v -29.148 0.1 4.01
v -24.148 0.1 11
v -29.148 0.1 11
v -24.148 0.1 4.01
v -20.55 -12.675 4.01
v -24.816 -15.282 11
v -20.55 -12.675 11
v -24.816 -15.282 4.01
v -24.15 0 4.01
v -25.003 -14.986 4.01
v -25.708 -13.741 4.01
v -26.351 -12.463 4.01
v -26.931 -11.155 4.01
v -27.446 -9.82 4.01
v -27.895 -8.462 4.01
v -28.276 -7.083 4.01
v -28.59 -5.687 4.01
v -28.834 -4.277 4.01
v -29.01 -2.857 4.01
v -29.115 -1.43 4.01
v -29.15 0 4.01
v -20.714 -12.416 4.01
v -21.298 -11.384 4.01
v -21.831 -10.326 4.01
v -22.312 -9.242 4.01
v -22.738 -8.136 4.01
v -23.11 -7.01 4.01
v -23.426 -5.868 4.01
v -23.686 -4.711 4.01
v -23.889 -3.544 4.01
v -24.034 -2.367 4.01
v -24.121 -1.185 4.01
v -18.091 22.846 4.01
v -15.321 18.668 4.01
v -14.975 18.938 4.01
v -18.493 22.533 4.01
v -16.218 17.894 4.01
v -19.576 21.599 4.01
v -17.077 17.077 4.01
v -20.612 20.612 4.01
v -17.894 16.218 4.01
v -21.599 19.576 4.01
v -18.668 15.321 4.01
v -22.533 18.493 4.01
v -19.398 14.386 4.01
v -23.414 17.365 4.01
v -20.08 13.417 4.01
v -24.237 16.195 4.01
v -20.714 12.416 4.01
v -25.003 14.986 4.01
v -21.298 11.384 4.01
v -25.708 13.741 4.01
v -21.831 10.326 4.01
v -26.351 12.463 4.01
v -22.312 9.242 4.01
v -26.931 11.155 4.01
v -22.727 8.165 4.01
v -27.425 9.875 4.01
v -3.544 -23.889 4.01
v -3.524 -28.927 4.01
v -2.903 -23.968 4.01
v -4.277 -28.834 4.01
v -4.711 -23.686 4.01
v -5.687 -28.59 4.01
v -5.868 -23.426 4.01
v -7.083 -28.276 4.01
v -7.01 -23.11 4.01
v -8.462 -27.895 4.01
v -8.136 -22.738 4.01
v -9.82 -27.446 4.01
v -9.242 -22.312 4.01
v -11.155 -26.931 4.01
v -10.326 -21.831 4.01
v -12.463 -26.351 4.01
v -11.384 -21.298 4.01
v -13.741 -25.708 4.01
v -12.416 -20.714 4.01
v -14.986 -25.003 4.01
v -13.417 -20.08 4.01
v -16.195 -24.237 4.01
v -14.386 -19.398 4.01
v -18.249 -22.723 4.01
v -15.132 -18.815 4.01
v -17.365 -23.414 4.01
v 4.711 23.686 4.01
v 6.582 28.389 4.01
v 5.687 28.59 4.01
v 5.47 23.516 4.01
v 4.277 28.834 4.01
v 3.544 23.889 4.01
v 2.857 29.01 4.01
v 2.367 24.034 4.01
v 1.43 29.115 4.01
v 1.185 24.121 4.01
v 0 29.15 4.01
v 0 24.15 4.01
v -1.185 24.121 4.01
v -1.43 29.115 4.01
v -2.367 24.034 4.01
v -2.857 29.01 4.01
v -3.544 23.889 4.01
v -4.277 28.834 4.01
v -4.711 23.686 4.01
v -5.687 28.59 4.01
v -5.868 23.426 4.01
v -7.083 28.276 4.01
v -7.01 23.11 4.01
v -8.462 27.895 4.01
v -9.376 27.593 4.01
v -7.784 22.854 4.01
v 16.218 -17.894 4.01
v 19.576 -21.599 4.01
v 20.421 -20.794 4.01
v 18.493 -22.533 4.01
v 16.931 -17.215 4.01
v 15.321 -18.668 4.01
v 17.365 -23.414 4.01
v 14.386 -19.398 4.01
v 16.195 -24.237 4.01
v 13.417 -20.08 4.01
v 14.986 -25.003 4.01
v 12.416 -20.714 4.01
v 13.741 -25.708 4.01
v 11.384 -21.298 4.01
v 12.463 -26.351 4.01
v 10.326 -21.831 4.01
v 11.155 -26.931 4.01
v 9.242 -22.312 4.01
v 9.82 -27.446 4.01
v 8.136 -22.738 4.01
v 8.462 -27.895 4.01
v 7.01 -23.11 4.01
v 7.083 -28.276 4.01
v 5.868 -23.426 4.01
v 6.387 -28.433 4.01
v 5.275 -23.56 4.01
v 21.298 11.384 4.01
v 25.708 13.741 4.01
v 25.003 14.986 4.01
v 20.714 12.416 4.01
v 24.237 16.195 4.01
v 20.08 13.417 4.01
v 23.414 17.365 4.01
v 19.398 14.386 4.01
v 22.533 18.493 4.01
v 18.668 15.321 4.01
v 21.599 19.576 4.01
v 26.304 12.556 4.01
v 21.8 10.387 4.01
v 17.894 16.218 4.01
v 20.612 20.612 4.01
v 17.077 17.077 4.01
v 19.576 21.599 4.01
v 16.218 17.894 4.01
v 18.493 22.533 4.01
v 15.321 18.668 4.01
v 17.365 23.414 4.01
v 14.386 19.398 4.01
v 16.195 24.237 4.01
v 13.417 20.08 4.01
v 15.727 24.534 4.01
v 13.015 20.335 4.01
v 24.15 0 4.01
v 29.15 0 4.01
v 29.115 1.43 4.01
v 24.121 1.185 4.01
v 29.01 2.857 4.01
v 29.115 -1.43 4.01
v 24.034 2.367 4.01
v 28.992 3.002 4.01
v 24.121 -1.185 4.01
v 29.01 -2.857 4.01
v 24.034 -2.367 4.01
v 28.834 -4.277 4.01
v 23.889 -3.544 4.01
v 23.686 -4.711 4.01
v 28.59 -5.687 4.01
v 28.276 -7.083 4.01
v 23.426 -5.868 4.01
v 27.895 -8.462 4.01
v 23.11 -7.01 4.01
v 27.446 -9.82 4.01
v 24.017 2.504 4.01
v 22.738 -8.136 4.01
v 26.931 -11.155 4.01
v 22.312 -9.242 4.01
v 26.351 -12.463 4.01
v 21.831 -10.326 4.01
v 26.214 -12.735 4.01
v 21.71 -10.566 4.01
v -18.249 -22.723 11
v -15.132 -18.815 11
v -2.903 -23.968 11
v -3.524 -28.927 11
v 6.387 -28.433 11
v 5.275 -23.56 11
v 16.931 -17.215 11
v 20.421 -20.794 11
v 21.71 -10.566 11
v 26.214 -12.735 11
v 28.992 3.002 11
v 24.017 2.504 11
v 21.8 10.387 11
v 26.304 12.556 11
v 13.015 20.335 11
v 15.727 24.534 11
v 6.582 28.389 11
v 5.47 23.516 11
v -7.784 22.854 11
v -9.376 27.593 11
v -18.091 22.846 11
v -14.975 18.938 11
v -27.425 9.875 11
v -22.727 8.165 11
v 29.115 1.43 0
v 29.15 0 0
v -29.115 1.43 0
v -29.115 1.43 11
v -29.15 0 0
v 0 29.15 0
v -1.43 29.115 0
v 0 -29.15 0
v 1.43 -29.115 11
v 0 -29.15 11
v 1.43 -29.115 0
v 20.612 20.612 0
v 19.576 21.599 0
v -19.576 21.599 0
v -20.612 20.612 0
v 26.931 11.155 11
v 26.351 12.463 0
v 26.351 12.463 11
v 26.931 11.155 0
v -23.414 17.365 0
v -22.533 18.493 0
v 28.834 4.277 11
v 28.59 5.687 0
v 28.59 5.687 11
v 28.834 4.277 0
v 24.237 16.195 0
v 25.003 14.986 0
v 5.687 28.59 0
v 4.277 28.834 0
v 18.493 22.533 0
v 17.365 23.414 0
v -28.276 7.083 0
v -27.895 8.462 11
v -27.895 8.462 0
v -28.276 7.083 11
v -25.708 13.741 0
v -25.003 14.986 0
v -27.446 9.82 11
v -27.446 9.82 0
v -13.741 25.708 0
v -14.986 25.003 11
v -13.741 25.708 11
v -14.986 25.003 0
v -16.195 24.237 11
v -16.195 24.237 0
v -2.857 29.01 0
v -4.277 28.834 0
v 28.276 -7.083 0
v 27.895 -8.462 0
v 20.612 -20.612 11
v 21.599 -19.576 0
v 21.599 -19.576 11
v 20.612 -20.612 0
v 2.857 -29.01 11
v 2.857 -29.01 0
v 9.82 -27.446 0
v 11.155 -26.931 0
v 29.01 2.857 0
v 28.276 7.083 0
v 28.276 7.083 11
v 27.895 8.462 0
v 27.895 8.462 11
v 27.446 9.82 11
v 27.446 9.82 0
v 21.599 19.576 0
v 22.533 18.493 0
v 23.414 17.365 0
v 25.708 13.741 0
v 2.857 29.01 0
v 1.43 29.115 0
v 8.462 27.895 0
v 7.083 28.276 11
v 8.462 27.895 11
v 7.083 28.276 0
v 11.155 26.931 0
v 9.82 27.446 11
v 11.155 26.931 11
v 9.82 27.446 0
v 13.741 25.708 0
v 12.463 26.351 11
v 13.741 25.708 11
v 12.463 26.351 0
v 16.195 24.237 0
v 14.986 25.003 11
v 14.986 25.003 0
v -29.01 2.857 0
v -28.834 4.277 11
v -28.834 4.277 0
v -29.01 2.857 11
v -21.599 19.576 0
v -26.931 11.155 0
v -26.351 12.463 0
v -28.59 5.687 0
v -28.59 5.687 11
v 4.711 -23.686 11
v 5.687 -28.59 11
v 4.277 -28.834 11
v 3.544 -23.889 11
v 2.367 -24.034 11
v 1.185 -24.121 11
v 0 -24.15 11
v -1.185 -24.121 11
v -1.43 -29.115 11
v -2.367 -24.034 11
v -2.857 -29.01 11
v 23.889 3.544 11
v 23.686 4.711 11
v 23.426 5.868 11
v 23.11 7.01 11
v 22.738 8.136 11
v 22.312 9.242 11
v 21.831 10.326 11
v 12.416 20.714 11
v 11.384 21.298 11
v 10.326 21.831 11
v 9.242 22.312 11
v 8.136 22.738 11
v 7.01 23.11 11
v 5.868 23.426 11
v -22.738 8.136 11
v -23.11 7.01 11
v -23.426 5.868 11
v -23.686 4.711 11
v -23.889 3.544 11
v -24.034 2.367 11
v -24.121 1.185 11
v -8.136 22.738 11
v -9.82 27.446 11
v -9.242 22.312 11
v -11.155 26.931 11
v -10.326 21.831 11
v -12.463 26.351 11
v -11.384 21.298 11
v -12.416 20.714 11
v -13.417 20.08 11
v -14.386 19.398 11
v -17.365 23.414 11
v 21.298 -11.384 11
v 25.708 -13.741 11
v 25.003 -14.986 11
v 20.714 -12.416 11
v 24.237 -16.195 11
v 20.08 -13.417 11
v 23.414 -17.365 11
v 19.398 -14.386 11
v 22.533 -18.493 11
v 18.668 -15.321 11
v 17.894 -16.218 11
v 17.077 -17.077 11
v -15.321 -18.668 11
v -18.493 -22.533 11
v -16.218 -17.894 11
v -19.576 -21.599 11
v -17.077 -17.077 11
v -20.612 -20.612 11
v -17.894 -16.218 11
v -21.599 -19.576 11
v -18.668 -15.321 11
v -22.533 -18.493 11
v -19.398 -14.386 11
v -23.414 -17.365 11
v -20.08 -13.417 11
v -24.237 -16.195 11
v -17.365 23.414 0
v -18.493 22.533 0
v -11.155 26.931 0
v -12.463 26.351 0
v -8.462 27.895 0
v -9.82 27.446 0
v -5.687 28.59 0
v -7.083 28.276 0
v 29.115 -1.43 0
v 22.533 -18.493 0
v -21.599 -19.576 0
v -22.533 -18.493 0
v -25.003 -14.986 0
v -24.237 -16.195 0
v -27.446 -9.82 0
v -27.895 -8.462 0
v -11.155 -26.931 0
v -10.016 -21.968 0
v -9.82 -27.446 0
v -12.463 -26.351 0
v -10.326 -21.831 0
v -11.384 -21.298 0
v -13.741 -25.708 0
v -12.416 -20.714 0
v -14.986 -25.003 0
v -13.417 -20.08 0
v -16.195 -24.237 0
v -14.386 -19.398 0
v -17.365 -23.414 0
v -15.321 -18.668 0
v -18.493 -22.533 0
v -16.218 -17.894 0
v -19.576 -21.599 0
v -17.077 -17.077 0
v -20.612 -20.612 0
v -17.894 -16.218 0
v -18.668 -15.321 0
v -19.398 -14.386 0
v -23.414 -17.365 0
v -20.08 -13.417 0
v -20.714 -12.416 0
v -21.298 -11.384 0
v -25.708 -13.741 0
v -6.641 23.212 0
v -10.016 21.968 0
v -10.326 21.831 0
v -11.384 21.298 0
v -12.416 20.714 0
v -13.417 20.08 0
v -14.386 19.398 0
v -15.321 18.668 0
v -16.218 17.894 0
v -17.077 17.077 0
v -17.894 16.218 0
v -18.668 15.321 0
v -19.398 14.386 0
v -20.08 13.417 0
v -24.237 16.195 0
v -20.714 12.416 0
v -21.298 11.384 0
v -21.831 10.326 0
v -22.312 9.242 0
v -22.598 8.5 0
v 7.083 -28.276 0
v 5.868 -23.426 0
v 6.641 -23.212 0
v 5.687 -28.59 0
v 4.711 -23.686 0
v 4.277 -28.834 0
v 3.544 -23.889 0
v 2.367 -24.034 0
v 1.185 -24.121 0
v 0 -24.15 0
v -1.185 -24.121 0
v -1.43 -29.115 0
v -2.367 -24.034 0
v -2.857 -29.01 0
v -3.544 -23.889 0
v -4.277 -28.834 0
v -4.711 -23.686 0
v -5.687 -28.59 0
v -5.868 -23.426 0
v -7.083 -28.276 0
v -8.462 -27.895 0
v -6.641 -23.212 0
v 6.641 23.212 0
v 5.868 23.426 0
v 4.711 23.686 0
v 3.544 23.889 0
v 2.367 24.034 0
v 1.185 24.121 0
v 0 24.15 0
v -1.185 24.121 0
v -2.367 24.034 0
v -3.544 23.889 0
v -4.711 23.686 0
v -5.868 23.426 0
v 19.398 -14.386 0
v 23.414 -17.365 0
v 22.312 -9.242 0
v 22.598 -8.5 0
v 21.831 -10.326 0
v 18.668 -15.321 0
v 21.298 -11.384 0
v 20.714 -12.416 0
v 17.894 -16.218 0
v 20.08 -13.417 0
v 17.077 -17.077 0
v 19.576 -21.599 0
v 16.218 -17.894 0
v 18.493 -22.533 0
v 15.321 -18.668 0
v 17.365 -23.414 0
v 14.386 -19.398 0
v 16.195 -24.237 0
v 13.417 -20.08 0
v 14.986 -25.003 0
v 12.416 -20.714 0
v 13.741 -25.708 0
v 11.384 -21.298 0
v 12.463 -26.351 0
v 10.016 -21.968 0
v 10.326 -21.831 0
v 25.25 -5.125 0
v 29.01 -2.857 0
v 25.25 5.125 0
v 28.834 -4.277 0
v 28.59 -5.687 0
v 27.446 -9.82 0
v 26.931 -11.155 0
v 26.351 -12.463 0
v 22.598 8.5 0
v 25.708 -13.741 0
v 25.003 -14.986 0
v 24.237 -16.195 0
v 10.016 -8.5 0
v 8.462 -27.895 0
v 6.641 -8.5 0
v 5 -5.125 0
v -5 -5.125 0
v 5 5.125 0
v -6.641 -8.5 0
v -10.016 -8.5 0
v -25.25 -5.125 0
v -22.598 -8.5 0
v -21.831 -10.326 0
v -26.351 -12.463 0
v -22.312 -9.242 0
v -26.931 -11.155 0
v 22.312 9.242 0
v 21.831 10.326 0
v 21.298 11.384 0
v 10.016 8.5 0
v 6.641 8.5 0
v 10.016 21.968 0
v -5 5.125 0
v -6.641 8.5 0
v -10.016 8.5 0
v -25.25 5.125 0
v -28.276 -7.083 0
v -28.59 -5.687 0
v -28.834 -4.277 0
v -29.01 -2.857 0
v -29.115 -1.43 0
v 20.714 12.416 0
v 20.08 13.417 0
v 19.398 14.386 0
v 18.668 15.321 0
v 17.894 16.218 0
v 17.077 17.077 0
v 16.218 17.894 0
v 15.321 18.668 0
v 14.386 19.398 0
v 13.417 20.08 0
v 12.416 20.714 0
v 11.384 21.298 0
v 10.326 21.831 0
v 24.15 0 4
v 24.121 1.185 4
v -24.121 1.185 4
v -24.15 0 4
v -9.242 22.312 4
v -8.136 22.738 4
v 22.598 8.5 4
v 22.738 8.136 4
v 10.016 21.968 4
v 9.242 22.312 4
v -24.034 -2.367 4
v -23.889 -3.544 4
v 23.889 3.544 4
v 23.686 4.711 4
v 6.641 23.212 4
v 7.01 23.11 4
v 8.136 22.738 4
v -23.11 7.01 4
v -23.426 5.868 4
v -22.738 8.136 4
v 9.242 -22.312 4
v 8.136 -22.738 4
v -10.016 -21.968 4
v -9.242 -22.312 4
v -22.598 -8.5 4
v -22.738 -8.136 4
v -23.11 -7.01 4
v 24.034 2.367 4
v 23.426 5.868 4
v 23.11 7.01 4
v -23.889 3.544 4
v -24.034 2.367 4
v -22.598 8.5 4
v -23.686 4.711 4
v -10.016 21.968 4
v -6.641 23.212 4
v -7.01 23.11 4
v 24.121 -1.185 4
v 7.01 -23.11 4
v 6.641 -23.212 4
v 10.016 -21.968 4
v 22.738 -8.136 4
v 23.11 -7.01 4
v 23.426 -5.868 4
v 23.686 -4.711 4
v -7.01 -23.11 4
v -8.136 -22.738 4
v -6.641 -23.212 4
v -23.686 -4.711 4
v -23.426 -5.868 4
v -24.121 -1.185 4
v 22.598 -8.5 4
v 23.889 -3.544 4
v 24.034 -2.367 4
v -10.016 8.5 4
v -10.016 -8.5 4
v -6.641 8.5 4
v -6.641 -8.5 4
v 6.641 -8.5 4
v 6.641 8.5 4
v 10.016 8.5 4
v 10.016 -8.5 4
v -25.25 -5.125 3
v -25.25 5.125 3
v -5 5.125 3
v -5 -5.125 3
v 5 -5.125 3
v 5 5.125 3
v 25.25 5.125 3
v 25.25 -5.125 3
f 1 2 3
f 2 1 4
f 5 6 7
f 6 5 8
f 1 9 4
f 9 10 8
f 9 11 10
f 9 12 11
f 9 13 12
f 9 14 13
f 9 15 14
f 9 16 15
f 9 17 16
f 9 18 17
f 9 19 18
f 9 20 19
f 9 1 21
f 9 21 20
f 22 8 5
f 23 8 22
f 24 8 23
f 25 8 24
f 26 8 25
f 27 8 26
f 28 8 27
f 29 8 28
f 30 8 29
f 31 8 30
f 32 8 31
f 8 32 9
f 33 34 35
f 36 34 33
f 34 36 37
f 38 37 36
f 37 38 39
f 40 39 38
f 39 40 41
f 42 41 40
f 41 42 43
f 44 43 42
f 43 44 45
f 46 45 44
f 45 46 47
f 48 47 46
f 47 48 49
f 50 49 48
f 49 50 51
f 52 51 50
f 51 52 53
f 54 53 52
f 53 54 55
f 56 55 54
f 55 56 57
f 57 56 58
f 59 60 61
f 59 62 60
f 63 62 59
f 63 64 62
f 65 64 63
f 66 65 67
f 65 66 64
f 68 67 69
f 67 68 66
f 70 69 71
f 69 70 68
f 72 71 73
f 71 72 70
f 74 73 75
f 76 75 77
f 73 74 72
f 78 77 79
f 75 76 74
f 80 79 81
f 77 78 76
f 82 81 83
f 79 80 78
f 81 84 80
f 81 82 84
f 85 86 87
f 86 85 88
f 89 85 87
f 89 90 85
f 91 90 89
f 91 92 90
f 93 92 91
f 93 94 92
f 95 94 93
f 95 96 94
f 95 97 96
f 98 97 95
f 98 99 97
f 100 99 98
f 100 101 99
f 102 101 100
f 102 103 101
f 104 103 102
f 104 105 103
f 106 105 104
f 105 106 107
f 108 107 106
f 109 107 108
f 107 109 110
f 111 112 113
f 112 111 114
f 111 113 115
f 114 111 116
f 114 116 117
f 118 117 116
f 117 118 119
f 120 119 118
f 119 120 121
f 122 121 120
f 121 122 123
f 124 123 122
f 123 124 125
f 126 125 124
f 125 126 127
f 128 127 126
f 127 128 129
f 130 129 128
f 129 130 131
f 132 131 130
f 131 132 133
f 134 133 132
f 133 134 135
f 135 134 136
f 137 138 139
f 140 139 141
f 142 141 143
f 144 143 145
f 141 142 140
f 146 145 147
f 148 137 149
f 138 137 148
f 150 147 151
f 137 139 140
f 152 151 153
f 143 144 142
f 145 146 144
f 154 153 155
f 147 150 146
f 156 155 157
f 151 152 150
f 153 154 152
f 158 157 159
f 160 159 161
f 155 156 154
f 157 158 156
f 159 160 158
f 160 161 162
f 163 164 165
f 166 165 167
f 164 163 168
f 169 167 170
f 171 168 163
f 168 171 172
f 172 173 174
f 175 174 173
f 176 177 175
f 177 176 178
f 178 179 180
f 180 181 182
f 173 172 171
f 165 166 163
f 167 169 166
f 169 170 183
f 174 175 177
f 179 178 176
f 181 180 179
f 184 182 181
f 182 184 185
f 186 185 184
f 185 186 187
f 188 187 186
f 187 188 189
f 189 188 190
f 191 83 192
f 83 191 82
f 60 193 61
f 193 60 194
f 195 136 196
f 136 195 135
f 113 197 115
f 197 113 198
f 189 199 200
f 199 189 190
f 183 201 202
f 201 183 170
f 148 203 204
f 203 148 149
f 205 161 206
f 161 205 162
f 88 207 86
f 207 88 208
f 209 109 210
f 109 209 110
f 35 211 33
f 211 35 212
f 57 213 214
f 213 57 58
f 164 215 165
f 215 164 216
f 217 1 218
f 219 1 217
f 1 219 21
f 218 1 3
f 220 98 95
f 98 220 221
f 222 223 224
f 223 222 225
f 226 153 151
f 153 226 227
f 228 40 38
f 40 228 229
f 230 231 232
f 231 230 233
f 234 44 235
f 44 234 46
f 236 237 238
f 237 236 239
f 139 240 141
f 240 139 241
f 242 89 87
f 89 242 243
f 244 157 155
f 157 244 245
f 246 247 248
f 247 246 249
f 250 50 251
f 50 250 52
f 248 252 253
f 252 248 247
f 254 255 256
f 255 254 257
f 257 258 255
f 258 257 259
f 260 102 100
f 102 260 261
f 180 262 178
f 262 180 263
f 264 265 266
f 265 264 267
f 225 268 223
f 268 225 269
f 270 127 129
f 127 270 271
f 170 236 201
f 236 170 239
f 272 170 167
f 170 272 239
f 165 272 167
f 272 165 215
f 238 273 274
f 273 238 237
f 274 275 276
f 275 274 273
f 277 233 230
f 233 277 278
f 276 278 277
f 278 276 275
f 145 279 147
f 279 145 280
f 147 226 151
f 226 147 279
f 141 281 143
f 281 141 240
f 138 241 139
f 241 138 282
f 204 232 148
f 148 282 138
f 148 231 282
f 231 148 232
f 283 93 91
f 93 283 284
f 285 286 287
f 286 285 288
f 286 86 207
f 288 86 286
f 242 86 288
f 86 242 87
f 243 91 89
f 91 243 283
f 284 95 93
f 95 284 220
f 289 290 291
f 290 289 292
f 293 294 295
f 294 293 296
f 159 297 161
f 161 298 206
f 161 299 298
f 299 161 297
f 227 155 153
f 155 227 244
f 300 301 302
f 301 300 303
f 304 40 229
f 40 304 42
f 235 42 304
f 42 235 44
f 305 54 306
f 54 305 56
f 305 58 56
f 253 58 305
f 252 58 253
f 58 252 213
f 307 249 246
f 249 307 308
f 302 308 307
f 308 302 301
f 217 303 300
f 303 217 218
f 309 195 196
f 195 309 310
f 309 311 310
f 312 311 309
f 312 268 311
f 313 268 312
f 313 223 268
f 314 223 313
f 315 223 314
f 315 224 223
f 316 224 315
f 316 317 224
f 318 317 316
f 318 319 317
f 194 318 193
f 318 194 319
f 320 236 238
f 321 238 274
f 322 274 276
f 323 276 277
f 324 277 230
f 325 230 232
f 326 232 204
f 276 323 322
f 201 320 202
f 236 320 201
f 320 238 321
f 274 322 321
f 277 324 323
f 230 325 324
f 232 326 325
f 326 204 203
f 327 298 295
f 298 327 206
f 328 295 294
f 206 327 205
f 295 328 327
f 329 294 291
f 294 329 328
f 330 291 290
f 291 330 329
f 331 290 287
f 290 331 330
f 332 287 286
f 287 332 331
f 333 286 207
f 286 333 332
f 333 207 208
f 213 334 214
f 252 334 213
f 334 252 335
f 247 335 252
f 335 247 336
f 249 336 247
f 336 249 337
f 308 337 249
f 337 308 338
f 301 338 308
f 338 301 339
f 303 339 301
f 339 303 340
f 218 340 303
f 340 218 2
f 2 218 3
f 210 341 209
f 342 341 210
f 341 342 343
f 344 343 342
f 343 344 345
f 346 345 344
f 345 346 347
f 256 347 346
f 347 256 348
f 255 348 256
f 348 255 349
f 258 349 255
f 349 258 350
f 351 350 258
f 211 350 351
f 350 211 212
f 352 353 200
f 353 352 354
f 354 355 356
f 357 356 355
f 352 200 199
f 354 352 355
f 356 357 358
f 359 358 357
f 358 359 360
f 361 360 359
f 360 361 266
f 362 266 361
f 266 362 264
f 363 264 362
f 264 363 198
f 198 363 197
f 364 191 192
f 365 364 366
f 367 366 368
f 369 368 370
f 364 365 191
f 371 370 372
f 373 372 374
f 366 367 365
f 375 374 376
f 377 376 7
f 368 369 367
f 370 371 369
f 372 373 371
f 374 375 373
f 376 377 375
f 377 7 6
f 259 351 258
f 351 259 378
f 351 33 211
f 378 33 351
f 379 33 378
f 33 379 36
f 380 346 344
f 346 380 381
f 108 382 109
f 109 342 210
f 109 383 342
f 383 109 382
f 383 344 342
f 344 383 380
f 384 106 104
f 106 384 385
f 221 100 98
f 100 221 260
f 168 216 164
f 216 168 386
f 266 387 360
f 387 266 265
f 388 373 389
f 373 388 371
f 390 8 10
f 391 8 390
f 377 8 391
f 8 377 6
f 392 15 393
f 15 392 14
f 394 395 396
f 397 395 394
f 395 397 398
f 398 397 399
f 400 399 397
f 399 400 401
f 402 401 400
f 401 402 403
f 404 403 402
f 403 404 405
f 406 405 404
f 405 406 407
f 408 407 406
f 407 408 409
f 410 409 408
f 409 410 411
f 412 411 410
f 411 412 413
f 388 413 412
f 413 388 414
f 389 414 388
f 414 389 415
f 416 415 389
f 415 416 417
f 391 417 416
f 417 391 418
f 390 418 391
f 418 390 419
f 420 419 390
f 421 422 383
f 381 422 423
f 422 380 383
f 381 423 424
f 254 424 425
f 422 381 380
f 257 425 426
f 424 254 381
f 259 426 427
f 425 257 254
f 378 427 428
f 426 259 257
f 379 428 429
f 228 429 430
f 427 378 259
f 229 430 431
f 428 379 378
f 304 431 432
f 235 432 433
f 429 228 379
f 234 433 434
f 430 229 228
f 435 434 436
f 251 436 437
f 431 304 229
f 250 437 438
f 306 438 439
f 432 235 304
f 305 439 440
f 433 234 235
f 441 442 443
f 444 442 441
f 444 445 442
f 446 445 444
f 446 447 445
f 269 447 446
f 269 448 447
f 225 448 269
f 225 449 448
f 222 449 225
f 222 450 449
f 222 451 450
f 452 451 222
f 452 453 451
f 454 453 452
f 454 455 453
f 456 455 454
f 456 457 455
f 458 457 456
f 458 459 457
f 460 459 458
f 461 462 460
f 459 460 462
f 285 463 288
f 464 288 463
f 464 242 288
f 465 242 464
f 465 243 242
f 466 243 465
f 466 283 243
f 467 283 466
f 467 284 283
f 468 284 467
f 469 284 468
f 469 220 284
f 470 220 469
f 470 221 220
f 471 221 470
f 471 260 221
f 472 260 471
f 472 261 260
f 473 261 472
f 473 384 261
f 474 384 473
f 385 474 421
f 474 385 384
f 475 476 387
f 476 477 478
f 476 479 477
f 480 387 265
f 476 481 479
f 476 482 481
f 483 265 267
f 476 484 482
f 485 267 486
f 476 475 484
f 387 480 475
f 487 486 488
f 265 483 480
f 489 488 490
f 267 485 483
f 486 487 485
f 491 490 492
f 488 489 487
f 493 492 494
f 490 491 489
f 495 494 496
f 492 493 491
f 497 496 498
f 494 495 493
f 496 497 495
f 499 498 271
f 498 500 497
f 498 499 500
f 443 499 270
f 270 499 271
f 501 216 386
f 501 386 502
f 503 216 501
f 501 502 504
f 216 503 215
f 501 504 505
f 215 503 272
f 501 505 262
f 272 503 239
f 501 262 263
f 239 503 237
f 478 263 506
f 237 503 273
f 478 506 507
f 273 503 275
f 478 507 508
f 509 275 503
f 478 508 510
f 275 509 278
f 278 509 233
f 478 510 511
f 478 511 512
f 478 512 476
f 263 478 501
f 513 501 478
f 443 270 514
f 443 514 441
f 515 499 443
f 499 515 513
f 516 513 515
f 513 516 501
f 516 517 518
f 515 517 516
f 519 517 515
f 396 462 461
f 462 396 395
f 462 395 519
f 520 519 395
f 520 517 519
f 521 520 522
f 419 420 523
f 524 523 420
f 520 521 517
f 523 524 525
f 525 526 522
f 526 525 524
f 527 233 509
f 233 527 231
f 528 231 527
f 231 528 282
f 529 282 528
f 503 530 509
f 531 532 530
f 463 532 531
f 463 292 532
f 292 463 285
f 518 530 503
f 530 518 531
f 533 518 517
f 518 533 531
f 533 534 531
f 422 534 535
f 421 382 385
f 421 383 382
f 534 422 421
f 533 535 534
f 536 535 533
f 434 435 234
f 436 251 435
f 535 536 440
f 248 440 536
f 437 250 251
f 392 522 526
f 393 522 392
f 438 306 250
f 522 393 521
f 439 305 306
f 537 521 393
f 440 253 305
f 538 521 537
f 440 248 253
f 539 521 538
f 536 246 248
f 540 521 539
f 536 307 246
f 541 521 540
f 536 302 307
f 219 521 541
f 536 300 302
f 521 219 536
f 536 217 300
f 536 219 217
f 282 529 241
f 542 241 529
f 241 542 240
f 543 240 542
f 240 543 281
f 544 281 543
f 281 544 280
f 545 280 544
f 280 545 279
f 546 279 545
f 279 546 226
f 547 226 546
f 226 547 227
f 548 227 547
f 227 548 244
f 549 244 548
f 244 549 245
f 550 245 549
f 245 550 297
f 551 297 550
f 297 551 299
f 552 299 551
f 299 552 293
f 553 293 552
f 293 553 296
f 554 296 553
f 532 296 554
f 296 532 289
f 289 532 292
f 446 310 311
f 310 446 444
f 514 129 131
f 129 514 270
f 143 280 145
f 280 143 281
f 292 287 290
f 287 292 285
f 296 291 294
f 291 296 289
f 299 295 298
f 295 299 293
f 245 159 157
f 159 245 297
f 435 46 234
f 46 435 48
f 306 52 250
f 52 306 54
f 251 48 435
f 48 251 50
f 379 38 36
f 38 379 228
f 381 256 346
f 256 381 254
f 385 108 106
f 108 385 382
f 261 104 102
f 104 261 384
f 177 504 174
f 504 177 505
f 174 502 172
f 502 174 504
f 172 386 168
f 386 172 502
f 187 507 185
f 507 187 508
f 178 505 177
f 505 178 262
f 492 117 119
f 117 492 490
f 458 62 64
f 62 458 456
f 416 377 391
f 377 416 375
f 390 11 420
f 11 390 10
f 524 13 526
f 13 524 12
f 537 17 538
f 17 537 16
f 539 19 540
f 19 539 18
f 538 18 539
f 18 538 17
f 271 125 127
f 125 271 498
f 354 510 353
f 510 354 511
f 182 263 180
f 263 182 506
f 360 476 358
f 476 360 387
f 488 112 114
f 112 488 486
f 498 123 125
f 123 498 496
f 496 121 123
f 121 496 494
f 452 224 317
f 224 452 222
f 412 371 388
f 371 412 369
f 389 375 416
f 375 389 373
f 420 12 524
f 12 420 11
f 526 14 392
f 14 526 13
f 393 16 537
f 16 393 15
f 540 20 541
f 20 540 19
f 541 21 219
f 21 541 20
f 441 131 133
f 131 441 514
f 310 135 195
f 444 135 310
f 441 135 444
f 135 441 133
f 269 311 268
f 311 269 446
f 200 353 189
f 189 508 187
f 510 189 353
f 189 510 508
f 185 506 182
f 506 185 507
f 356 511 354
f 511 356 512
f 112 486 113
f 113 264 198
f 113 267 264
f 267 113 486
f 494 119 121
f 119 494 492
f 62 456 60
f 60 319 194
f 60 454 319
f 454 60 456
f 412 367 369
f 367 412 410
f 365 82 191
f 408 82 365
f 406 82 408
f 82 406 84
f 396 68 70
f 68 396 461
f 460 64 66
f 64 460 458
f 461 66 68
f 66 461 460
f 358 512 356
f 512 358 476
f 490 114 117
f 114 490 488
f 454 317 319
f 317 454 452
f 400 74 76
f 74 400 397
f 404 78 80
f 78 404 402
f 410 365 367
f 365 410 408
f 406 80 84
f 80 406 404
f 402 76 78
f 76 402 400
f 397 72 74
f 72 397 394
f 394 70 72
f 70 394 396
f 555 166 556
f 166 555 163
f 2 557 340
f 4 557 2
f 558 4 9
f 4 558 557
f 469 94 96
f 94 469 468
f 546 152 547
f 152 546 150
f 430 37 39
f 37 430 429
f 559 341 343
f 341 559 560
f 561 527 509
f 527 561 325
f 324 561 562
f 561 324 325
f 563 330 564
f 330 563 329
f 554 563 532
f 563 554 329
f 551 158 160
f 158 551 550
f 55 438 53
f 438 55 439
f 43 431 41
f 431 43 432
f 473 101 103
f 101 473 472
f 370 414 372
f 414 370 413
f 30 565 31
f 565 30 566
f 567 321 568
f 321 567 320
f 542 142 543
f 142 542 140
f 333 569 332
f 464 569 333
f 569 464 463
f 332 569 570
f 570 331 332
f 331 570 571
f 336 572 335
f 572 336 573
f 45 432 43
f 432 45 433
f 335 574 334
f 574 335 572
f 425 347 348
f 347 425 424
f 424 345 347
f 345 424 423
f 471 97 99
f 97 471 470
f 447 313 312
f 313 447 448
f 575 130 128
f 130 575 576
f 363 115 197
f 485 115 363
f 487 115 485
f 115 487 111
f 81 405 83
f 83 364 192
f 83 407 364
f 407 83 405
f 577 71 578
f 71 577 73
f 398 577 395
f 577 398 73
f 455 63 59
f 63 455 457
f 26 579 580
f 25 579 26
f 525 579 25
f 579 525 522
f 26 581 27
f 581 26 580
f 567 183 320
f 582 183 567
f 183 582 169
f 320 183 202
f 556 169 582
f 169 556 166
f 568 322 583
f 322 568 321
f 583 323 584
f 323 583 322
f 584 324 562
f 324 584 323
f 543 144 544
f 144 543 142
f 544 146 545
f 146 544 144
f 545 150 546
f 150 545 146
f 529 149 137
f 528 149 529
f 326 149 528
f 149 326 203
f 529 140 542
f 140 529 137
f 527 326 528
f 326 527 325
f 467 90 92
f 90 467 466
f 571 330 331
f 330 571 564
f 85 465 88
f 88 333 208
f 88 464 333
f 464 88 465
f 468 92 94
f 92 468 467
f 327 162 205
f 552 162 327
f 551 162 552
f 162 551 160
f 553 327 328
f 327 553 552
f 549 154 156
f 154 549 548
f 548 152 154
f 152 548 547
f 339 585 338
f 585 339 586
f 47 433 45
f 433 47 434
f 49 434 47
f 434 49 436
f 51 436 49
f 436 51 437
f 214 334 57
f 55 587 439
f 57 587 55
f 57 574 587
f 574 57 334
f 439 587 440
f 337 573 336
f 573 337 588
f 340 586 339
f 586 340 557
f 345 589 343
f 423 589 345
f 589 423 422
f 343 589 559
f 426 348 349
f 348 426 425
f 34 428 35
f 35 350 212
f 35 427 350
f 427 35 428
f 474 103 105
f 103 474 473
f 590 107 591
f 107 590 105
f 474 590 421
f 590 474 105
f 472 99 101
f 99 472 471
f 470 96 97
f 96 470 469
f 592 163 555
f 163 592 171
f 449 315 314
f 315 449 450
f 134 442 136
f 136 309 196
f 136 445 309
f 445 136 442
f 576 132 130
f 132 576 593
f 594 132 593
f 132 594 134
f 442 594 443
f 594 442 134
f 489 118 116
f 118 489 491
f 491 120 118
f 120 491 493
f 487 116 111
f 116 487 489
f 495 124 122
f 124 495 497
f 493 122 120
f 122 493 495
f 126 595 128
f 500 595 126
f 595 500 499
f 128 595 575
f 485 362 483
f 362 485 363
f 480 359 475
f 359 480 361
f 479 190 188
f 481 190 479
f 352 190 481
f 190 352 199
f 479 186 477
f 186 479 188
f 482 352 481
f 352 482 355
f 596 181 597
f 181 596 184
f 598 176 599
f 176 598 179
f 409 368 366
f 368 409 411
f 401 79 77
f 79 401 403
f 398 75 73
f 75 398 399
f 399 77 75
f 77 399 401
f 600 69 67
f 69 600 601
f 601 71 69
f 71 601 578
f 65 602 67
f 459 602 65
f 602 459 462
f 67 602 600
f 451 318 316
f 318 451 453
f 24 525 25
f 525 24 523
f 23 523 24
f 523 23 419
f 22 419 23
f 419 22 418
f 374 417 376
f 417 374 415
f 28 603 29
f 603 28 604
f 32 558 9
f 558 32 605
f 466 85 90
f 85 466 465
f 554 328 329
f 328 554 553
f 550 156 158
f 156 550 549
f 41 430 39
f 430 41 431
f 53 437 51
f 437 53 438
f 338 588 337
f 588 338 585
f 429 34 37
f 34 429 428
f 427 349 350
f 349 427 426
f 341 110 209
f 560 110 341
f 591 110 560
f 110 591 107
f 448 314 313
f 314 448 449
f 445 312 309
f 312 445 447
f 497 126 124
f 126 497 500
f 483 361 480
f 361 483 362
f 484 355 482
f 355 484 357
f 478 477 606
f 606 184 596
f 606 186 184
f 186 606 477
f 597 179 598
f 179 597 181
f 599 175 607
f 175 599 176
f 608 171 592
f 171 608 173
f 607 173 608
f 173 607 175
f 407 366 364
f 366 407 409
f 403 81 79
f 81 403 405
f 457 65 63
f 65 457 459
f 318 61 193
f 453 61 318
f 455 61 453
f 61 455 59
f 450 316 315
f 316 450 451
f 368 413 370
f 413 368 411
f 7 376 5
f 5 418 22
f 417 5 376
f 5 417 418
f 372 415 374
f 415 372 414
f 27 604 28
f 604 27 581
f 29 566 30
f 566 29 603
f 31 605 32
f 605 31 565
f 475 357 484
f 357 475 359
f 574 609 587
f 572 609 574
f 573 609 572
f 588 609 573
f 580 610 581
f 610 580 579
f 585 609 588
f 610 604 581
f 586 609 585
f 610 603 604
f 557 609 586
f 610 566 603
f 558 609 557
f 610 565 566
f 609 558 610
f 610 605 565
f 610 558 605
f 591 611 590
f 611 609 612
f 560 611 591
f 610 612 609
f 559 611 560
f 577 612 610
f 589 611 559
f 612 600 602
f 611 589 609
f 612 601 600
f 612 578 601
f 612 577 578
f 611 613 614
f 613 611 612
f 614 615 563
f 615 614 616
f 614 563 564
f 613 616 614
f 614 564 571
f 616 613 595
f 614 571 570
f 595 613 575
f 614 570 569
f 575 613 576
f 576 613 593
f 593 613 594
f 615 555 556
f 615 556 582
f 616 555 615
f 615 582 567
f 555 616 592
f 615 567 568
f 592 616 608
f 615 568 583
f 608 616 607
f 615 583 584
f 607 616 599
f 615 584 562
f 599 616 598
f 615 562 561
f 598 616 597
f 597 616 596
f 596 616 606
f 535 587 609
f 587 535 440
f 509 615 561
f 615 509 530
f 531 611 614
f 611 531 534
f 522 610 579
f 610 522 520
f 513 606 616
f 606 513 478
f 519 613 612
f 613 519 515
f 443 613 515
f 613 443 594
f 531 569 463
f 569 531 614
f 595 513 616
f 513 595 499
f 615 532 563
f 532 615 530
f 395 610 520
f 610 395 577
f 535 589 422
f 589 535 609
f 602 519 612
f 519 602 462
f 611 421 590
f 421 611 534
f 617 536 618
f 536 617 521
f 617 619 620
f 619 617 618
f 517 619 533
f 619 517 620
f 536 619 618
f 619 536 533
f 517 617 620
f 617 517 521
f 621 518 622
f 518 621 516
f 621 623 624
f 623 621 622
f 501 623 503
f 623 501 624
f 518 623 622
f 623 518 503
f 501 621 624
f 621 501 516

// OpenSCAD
$fn=128;

fw = 48.3;   // fan width

h  = 4;      // base height
r  = 5;      // edge width

pn = 7;      // number of pins
ph = 7;      // pin height
pa = 20;     // pin angle

mw = 10.25;  // magnet width
ml = 20.25;  // magnet length
mb = 17;     // magnet bar width
g  = 10;     // magnet gap

d=fw+r+r;    // total diameter
cl=d-r;      // magnet bar length
a=360/pn;    // segment angle

difference() {
  union() {
    difference() {
      translate([0,0,0]) cylinder(h+ph,d/2,d/2);
      translate([0,0,-1]) cylinder(h+ph+2,d/2-r,d/2-r);
      for (i =[0:1:pn-1]) {
        pin(a*i);
      }
    }
    translate([-cl/2,-mb/2,0]) cube([cl,mb,h]);
    rotate ([0,0,90]) translate([-cl/2,-(mb-mw)/4-d/7,0]) cube([cl,(mb-mw)/2,h]);
    rotate ([0,0,90]) translate([-cl/2,-(mb-mw)/4+d/7,0]) cube([cl,(mb-mw)/2,h]);
  }
  translate([-ml-g/2,-mw/2,-1]) cube([ml,mw,h]);
  translate([g/2,-mw/2,-1]) cube([ml,mw,h]);
}

module pin(r) {
  translate([0,0,0.01]) rotate([0,0,r]) hull() {
    translate([0,0,h]) cylinder(h+ph,0.1,0.1);
    translate([-d,0,h]) cylinder(h+ph,0.1,0.1);
    rotate ([0,0,a-pa])union() {
      translate([0,0,h]) cylinder(h+ph,0.1,0.1);
      translate([-d,0,h]) cylinder(h+ph,0.1,0.1);
    }
  }
}
